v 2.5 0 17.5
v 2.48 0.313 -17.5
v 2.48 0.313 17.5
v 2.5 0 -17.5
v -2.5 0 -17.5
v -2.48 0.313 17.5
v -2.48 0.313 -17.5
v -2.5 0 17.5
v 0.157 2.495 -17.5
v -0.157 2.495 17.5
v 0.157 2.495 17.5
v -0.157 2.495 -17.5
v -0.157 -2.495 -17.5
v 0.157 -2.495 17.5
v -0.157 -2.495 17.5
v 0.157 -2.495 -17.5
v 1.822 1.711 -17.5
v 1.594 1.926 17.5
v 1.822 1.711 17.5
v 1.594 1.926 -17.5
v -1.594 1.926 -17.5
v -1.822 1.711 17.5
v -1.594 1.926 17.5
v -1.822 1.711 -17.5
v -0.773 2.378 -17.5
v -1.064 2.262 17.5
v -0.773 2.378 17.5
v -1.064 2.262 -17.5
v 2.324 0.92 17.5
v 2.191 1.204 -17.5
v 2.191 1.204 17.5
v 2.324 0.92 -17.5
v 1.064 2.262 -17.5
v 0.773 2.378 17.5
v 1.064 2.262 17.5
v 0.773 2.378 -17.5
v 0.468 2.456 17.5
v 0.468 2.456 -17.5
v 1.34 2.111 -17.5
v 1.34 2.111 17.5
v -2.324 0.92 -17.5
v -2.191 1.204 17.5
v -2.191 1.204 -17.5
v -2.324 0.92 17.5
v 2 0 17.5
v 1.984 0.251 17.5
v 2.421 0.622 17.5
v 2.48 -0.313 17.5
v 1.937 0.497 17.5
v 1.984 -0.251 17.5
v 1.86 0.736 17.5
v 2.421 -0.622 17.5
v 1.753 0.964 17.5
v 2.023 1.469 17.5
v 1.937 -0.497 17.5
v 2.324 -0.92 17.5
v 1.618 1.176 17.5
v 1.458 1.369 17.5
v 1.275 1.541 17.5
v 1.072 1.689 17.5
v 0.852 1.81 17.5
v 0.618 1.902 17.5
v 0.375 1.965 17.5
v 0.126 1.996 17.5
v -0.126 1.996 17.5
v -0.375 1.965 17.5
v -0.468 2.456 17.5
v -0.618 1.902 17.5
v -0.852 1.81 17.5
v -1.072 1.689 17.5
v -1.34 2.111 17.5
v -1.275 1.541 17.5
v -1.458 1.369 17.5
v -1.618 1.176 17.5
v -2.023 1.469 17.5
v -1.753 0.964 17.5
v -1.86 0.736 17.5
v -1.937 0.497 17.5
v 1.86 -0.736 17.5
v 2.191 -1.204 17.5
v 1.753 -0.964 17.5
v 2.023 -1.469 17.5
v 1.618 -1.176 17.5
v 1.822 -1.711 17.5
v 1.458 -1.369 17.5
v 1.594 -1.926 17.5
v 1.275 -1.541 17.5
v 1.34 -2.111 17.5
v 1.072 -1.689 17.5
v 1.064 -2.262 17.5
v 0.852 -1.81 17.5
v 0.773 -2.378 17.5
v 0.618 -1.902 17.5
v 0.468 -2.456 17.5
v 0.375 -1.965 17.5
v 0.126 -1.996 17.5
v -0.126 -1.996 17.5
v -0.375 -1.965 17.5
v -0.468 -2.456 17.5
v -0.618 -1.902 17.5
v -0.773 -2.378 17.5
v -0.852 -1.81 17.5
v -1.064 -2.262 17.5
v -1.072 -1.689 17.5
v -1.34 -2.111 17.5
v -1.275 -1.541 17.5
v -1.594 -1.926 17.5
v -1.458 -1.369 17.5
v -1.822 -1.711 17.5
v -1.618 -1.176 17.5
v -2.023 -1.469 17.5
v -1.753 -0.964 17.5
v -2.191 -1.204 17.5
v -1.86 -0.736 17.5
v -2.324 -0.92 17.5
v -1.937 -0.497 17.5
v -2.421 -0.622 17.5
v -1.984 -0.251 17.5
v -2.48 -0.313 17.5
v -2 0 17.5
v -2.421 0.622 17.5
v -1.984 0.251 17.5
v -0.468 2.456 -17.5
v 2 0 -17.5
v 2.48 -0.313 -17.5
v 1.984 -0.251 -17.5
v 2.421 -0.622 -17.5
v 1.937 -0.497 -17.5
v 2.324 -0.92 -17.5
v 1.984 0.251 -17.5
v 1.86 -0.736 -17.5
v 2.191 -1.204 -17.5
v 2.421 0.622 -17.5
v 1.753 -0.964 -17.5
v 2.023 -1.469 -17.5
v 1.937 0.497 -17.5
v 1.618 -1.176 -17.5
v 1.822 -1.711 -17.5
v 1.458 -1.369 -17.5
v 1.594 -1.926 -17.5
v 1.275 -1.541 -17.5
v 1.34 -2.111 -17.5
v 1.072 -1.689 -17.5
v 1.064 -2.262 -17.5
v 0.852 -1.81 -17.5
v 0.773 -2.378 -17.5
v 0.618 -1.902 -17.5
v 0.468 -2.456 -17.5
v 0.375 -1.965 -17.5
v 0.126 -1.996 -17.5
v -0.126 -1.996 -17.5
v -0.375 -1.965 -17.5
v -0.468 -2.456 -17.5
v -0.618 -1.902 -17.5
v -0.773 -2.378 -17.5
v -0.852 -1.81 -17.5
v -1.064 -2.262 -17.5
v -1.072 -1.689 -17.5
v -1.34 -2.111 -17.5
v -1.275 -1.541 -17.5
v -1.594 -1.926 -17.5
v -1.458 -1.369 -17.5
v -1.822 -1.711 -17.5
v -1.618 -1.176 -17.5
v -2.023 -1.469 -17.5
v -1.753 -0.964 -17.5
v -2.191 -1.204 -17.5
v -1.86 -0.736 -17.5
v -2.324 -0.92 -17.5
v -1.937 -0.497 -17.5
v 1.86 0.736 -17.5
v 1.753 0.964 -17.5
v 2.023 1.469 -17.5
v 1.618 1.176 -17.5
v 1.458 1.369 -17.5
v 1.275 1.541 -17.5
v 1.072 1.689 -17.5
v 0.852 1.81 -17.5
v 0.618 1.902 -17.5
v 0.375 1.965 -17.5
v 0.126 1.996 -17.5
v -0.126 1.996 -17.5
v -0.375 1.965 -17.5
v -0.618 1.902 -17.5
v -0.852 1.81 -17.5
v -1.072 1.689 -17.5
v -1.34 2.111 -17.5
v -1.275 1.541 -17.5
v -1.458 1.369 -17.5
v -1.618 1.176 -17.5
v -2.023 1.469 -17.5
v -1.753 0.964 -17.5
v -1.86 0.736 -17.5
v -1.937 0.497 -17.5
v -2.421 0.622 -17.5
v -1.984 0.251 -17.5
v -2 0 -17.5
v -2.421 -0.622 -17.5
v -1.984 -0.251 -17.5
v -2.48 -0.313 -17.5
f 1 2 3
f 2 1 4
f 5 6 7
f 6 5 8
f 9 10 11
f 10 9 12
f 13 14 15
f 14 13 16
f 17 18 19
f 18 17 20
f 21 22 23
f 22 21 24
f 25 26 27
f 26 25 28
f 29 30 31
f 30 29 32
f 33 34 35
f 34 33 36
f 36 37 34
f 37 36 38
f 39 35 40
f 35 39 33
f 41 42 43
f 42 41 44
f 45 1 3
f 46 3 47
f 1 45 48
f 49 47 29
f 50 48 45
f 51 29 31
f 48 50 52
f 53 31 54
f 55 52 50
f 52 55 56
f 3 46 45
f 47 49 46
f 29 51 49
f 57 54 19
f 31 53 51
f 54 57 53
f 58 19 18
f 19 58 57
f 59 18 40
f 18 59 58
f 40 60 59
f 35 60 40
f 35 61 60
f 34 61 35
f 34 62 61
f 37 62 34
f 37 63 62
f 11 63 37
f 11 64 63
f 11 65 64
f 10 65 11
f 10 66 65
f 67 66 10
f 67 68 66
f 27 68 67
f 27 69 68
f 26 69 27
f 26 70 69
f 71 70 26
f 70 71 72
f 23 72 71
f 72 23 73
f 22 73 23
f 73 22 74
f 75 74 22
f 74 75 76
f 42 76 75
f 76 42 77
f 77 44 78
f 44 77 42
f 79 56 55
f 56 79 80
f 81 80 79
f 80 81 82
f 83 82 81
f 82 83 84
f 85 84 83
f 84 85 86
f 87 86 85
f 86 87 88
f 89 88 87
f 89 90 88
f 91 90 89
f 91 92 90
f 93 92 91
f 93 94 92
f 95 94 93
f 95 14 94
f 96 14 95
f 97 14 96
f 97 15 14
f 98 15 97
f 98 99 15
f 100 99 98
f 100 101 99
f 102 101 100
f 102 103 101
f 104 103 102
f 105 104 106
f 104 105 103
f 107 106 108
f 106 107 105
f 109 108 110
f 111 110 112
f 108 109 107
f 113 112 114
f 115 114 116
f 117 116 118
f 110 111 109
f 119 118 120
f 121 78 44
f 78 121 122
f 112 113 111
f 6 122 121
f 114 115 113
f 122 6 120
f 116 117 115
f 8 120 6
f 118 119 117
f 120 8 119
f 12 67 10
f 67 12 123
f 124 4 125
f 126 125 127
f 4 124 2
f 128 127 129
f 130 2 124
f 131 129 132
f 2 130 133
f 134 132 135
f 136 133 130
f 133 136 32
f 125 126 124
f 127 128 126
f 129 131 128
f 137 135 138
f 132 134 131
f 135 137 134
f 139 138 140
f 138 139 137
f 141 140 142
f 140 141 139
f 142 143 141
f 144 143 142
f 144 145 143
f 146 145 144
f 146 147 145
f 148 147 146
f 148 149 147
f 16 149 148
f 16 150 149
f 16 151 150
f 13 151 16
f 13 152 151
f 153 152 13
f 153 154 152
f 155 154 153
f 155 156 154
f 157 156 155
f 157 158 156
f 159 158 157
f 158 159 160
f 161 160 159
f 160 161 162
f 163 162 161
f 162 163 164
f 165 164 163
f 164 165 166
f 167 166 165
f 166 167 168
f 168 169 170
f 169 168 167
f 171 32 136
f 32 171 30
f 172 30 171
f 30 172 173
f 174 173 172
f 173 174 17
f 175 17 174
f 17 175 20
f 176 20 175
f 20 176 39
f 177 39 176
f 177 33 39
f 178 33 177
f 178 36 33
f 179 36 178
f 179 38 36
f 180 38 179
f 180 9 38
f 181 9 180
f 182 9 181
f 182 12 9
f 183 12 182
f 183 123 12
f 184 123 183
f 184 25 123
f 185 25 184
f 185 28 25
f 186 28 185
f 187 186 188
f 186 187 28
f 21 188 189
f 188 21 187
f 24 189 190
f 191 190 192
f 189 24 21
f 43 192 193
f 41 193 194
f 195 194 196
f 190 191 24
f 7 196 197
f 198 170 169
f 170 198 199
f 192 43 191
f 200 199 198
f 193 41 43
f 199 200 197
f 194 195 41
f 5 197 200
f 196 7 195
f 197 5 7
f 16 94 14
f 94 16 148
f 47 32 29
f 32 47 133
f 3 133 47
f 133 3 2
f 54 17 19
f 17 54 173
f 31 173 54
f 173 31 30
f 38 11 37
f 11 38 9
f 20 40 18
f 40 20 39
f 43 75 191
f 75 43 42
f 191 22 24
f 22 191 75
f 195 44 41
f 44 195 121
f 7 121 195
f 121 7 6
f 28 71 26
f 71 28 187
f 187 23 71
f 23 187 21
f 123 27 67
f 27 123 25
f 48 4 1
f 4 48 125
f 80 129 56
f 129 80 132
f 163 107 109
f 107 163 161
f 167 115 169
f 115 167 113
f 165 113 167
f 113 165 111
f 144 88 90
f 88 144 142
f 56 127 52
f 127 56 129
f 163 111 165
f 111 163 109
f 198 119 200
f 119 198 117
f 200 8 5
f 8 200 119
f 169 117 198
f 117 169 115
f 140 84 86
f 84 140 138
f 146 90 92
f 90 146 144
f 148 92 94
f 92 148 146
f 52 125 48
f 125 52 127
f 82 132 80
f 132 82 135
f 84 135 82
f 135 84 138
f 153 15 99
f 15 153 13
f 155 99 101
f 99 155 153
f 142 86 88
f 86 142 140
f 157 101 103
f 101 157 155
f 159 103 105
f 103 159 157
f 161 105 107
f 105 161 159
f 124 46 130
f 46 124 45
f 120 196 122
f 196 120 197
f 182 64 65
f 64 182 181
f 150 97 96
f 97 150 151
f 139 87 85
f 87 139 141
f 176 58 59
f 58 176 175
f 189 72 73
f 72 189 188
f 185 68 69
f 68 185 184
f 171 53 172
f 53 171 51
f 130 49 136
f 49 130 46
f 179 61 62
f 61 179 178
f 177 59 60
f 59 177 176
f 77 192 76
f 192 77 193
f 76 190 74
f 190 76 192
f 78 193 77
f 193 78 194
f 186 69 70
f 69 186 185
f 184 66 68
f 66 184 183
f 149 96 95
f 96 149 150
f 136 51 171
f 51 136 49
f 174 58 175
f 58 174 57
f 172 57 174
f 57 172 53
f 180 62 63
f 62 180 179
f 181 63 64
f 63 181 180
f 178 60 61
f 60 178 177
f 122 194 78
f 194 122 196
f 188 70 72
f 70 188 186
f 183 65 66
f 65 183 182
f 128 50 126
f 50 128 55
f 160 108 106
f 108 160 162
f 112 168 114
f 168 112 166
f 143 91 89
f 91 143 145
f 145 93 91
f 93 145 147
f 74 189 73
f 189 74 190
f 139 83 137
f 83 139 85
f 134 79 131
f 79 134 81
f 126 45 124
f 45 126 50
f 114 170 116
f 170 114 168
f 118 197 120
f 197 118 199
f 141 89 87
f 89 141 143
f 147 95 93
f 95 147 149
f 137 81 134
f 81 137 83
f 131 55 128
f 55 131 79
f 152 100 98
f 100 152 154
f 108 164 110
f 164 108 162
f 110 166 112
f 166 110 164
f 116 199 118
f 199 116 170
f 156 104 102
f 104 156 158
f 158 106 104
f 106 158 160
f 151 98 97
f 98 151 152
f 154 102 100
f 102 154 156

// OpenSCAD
$fn = 50;


difference() {
	union() {
		translate(v = [0, 0, -17.5000000000]) {
			cylinder(h = 35, r = 2.5000000000);
		}
	}
	union() {
		translate(v = [0, 0, -100.0000000000]) {
			cylinder(h = 200, r = 2.0000000000);
		}
	}
}
